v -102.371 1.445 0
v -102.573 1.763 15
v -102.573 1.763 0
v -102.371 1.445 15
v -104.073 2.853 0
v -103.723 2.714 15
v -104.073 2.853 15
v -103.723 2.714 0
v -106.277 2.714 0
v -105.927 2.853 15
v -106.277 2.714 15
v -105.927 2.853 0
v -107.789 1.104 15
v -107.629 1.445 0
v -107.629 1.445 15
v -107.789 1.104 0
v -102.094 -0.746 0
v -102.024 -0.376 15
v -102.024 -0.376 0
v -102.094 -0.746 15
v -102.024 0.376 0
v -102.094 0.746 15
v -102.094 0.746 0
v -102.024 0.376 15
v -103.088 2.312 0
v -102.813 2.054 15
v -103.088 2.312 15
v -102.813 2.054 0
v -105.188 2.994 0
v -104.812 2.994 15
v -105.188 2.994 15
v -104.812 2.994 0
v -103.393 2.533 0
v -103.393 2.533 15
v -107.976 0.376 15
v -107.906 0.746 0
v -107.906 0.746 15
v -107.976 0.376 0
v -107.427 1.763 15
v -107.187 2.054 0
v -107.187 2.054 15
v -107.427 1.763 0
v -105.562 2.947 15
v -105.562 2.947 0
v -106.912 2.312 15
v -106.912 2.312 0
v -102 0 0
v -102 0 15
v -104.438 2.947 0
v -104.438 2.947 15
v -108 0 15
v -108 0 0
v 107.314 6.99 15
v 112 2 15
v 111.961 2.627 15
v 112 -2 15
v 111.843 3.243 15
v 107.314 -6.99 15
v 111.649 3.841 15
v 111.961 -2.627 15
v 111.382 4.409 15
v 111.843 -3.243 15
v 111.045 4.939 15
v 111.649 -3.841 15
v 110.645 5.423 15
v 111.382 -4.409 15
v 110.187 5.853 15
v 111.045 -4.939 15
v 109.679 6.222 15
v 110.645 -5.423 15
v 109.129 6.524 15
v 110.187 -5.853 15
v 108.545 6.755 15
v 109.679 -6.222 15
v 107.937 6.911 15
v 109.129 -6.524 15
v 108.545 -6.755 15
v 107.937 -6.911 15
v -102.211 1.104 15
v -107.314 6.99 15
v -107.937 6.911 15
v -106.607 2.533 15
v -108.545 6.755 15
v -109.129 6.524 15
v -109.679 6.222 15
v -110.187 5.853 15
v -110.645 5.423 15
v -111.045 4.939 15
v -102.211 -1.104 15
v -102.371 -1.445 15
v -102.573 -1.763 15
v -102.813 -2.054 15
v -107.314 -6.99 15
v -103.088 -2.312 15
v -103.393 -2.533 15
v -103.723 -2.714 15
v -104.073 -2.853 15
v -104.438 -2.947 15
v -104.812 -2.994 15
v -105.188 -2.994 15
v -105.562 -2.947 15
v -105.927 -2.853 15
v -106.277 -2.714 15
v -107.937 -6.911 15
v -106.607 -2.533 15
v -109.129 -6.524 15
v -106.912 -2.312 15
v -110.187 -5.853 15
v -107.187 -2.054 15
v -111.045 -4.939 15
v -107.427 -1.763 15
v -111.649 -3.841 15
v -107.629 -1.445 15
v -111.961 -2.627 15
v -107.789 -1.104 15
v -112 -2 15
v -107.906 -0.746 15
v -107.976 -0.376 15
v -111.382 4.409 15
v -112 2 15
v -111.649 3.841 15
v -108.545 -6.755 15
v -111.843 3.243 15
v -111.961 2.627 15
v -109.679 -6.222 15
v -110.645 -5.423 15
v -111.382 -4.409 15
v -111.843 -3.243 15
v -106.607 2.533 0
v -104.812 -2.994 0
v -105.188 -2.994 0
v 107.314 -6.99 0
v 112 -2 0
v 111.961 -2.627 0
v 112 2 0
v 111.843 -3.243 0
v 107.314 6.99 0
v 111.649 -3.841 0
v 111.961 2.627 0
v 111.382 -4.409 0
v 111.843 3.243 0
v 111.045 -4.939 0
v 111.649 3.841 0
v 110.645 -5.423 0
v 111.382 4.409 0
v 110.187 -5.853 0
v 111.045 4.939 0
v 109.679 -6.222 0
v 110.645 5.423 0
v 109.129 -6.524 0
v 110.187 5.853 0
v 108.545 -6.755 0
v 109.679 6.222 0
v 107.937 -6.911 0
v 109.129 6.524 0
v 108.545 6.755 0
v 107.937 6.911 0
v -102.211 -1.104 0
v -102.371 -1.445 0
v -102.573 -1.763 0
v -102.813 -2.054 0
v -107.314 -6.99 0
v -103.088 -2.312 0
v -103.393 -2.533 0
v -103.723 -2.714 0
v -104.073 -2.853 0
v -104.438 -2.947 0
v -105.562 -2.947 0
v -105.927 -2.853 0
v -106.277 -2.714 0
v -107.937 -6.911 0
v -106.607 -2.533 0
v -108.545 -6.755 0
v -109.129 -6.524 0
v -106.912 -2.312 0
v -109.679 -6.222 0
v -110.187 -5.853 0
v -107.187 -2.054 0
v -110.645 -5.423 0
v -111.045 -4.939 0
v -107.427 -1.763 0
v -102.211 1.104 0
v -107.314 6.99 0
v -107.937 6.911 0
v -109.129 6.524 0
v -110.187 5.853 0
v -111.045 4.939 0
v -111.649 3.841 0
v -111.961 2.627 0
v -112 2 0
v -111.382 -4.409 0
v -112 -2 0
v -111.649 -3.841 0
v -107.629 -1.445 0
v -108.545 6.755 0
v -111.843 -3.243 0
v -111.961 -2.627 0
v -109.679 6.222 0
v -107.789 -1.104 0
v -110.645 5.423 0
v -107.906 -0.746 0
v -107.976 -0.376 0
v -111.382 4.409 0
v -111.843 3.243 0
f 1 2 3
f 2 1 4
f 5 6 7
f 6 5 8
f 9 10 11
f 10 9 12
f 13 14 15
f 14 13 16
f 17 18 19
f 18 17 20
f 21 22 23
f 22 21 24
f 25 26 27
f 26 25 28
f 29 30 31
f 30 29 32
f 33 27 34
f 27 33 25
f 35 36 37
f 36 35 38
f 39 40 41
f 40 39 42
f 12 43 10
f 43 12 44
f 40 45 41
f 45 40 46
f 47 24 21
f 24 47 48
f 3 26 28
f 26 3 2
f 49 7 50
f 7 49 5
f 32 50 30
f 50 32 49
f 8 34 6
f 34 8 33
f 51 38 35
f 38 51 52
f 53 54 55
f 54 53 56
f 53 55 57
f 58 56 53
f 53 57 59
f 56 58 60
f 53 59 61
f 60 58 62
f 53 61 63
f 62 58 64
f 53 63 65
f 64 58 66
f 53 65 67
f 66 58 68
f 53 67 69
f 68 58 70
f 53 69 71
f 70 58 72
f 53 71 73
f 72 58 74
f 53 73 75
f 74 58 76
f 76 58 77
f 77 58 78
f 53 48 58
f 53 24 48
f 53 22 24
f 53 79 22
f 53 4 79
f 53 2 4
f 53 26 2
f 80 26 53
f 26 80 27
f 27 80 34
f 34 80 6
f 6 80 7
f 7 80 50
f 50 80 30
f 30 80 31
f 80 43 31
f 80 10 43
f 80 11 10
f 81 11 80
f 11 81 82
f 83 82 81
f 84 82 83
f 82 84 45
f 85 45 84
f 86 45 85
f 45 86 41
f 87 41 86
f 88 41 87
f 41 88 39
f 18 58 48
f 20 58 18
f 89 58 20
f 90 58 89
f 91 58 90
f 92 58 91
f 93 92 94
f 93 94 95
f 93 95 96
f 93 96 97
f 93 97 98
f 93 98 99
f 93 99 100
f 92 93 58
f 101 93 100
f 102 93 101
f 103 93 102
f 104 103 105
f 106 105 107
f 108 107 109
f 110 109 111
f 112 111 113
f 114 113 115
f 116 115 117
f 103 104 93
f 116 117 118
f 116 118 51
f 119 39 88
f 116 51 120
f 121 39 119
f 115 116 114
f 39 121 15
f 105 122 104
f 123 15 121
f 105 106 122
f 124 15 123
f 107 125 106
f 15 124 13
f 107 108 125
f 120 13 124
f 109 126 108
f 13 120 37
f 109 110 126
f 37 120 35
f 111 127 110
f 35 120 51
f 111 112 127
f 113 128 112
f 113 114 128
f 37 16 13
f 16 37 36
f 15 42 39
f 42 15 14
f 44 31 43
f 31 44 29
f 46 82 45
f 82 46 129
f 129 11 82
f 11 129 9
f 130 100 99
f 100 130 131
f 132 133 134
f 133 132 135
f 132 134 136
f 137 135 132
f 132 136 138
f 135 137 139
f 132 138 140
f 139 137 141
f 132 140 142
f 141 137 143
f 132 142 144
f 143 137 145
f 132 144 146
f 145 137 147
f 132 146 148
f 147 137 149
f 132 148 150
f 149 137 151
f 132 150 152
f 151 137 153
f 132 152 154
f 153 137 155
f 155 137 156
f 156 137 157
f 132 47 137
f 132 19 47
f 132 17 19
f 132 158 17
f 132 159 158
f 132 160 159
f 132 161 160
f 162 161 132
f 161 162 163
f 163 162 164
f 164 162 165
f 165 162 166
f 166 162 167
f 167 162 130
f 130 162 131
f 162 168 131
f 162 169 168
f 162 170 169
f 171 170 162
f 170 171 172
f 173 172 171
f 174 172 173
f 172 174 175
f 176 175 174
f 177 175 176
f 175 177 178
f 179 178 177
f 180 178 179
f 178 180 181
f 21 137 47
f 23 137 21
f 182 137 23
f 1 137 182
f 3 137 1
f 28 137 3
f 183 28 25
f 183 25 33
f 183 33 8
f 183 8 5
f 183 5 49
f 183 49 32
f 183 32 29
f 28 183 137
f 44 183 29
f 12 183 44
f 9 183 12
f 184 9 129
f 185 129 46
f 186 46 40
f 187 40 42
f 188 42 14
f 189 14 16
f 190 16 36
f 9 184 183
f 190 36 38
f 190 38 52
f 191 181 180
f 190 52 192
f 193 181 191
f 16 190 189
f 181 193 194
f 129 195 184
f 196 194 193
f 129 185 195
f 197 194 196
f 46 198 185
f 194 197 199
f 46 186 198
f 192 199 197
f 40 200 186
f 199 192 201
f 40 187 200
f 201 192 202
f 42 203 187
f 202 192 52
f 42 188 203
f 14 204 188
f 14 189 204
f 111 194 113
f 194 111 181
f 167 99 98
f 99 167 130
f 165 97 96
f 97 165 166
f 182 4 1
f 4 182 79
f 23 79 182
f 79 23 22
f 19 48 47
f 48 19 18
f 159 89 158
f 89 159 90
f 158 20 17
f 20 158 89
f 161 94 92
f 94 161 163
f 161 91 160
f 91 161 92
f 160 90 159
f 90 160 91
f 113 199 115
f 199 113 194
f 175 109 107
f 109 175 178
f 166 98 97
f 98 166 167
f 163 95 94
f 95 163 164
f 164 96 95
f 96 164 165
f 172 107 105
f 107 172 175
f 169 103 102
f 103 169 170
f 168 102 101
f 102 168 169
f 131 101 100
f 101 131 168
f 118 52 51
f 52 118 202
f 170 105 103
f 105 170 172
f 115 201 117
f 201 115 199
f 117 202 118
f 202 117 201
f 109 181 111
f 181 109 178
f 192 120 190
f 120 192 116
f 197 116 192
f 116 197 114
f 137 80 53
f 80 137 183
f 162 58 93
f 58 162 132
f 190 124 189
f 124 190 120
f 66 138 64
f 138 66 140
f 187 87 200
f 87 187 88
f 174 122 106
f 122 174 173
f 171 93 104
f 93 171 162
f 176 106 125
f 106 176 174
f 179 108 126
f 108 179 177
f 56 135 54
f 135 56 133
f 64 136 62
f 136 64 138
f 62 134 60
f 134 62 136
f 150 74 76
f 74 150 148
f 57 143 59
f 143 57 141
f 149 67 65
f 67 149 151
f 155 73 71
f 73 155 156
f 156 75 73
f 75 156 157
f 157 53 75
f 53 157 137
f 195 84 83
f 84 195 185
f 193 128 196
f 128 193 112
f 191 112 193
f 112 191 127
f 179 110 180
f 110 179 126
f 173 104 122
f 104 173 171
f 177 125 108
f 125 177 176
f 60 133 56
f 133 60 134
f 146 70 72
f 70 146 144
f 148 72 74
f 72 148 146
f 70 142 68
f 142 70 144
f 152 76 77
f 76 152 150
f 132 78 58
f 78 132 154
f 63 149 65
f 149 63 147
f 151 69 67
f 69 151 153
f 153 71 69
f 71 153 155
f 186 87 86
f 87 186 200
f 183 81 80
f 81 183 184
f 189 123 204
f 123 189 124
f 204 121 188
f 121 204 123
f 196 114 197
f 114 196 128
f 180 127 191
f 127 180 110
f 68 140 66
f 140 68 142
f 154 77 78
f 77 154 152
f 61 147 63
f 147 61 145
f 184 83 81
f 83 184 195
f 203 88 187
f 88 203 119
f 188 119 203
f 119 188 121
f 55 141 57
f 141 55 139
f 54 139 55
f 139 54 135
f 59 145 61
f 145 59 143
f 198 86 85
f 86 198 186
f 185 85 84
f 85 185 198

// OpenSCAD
$fn = 50;


difference() {
	union() {
		hull() {
			translate(v = [-107.0000000000, 2.0000000000, 0]) {
				cylinder(h = 15, r = 5);
			}
			translate(v = [107.0000000000, 2.0000000000, 0]) {
				cylinder(h = 15, r = 5);
			}
			translate(v = [-107.0000000000, -2.0000000000, 0]) {
				cylinder(h = 15, r = 5);
			}
			translate(v = [107.0000000000, -2.0000000000, 0]) {
				cylinder(h = 15, r = 5);
			}
		}
	}
	union() {
		translate(v = [-105.0000000000, 0.0000000000, 0]) {
			cylinder(h = 15, r = 3.0000000000);
		}
		translate(v = [-105.0000000000, 0.0000000000, 0]) {
			cylinder(h = 15, r = 1.5000000000);
		}
		translate(v = [-105.0000000000, 0.0000000000, 0]) {
			cylinder(h = 15, r = 1.5000000000);
		}
		translate(v = [-105.0000000000, 0.0000000000, 0]) {
			cylinder(h = 15, r = 1.5000000000);
		}
	}
}
